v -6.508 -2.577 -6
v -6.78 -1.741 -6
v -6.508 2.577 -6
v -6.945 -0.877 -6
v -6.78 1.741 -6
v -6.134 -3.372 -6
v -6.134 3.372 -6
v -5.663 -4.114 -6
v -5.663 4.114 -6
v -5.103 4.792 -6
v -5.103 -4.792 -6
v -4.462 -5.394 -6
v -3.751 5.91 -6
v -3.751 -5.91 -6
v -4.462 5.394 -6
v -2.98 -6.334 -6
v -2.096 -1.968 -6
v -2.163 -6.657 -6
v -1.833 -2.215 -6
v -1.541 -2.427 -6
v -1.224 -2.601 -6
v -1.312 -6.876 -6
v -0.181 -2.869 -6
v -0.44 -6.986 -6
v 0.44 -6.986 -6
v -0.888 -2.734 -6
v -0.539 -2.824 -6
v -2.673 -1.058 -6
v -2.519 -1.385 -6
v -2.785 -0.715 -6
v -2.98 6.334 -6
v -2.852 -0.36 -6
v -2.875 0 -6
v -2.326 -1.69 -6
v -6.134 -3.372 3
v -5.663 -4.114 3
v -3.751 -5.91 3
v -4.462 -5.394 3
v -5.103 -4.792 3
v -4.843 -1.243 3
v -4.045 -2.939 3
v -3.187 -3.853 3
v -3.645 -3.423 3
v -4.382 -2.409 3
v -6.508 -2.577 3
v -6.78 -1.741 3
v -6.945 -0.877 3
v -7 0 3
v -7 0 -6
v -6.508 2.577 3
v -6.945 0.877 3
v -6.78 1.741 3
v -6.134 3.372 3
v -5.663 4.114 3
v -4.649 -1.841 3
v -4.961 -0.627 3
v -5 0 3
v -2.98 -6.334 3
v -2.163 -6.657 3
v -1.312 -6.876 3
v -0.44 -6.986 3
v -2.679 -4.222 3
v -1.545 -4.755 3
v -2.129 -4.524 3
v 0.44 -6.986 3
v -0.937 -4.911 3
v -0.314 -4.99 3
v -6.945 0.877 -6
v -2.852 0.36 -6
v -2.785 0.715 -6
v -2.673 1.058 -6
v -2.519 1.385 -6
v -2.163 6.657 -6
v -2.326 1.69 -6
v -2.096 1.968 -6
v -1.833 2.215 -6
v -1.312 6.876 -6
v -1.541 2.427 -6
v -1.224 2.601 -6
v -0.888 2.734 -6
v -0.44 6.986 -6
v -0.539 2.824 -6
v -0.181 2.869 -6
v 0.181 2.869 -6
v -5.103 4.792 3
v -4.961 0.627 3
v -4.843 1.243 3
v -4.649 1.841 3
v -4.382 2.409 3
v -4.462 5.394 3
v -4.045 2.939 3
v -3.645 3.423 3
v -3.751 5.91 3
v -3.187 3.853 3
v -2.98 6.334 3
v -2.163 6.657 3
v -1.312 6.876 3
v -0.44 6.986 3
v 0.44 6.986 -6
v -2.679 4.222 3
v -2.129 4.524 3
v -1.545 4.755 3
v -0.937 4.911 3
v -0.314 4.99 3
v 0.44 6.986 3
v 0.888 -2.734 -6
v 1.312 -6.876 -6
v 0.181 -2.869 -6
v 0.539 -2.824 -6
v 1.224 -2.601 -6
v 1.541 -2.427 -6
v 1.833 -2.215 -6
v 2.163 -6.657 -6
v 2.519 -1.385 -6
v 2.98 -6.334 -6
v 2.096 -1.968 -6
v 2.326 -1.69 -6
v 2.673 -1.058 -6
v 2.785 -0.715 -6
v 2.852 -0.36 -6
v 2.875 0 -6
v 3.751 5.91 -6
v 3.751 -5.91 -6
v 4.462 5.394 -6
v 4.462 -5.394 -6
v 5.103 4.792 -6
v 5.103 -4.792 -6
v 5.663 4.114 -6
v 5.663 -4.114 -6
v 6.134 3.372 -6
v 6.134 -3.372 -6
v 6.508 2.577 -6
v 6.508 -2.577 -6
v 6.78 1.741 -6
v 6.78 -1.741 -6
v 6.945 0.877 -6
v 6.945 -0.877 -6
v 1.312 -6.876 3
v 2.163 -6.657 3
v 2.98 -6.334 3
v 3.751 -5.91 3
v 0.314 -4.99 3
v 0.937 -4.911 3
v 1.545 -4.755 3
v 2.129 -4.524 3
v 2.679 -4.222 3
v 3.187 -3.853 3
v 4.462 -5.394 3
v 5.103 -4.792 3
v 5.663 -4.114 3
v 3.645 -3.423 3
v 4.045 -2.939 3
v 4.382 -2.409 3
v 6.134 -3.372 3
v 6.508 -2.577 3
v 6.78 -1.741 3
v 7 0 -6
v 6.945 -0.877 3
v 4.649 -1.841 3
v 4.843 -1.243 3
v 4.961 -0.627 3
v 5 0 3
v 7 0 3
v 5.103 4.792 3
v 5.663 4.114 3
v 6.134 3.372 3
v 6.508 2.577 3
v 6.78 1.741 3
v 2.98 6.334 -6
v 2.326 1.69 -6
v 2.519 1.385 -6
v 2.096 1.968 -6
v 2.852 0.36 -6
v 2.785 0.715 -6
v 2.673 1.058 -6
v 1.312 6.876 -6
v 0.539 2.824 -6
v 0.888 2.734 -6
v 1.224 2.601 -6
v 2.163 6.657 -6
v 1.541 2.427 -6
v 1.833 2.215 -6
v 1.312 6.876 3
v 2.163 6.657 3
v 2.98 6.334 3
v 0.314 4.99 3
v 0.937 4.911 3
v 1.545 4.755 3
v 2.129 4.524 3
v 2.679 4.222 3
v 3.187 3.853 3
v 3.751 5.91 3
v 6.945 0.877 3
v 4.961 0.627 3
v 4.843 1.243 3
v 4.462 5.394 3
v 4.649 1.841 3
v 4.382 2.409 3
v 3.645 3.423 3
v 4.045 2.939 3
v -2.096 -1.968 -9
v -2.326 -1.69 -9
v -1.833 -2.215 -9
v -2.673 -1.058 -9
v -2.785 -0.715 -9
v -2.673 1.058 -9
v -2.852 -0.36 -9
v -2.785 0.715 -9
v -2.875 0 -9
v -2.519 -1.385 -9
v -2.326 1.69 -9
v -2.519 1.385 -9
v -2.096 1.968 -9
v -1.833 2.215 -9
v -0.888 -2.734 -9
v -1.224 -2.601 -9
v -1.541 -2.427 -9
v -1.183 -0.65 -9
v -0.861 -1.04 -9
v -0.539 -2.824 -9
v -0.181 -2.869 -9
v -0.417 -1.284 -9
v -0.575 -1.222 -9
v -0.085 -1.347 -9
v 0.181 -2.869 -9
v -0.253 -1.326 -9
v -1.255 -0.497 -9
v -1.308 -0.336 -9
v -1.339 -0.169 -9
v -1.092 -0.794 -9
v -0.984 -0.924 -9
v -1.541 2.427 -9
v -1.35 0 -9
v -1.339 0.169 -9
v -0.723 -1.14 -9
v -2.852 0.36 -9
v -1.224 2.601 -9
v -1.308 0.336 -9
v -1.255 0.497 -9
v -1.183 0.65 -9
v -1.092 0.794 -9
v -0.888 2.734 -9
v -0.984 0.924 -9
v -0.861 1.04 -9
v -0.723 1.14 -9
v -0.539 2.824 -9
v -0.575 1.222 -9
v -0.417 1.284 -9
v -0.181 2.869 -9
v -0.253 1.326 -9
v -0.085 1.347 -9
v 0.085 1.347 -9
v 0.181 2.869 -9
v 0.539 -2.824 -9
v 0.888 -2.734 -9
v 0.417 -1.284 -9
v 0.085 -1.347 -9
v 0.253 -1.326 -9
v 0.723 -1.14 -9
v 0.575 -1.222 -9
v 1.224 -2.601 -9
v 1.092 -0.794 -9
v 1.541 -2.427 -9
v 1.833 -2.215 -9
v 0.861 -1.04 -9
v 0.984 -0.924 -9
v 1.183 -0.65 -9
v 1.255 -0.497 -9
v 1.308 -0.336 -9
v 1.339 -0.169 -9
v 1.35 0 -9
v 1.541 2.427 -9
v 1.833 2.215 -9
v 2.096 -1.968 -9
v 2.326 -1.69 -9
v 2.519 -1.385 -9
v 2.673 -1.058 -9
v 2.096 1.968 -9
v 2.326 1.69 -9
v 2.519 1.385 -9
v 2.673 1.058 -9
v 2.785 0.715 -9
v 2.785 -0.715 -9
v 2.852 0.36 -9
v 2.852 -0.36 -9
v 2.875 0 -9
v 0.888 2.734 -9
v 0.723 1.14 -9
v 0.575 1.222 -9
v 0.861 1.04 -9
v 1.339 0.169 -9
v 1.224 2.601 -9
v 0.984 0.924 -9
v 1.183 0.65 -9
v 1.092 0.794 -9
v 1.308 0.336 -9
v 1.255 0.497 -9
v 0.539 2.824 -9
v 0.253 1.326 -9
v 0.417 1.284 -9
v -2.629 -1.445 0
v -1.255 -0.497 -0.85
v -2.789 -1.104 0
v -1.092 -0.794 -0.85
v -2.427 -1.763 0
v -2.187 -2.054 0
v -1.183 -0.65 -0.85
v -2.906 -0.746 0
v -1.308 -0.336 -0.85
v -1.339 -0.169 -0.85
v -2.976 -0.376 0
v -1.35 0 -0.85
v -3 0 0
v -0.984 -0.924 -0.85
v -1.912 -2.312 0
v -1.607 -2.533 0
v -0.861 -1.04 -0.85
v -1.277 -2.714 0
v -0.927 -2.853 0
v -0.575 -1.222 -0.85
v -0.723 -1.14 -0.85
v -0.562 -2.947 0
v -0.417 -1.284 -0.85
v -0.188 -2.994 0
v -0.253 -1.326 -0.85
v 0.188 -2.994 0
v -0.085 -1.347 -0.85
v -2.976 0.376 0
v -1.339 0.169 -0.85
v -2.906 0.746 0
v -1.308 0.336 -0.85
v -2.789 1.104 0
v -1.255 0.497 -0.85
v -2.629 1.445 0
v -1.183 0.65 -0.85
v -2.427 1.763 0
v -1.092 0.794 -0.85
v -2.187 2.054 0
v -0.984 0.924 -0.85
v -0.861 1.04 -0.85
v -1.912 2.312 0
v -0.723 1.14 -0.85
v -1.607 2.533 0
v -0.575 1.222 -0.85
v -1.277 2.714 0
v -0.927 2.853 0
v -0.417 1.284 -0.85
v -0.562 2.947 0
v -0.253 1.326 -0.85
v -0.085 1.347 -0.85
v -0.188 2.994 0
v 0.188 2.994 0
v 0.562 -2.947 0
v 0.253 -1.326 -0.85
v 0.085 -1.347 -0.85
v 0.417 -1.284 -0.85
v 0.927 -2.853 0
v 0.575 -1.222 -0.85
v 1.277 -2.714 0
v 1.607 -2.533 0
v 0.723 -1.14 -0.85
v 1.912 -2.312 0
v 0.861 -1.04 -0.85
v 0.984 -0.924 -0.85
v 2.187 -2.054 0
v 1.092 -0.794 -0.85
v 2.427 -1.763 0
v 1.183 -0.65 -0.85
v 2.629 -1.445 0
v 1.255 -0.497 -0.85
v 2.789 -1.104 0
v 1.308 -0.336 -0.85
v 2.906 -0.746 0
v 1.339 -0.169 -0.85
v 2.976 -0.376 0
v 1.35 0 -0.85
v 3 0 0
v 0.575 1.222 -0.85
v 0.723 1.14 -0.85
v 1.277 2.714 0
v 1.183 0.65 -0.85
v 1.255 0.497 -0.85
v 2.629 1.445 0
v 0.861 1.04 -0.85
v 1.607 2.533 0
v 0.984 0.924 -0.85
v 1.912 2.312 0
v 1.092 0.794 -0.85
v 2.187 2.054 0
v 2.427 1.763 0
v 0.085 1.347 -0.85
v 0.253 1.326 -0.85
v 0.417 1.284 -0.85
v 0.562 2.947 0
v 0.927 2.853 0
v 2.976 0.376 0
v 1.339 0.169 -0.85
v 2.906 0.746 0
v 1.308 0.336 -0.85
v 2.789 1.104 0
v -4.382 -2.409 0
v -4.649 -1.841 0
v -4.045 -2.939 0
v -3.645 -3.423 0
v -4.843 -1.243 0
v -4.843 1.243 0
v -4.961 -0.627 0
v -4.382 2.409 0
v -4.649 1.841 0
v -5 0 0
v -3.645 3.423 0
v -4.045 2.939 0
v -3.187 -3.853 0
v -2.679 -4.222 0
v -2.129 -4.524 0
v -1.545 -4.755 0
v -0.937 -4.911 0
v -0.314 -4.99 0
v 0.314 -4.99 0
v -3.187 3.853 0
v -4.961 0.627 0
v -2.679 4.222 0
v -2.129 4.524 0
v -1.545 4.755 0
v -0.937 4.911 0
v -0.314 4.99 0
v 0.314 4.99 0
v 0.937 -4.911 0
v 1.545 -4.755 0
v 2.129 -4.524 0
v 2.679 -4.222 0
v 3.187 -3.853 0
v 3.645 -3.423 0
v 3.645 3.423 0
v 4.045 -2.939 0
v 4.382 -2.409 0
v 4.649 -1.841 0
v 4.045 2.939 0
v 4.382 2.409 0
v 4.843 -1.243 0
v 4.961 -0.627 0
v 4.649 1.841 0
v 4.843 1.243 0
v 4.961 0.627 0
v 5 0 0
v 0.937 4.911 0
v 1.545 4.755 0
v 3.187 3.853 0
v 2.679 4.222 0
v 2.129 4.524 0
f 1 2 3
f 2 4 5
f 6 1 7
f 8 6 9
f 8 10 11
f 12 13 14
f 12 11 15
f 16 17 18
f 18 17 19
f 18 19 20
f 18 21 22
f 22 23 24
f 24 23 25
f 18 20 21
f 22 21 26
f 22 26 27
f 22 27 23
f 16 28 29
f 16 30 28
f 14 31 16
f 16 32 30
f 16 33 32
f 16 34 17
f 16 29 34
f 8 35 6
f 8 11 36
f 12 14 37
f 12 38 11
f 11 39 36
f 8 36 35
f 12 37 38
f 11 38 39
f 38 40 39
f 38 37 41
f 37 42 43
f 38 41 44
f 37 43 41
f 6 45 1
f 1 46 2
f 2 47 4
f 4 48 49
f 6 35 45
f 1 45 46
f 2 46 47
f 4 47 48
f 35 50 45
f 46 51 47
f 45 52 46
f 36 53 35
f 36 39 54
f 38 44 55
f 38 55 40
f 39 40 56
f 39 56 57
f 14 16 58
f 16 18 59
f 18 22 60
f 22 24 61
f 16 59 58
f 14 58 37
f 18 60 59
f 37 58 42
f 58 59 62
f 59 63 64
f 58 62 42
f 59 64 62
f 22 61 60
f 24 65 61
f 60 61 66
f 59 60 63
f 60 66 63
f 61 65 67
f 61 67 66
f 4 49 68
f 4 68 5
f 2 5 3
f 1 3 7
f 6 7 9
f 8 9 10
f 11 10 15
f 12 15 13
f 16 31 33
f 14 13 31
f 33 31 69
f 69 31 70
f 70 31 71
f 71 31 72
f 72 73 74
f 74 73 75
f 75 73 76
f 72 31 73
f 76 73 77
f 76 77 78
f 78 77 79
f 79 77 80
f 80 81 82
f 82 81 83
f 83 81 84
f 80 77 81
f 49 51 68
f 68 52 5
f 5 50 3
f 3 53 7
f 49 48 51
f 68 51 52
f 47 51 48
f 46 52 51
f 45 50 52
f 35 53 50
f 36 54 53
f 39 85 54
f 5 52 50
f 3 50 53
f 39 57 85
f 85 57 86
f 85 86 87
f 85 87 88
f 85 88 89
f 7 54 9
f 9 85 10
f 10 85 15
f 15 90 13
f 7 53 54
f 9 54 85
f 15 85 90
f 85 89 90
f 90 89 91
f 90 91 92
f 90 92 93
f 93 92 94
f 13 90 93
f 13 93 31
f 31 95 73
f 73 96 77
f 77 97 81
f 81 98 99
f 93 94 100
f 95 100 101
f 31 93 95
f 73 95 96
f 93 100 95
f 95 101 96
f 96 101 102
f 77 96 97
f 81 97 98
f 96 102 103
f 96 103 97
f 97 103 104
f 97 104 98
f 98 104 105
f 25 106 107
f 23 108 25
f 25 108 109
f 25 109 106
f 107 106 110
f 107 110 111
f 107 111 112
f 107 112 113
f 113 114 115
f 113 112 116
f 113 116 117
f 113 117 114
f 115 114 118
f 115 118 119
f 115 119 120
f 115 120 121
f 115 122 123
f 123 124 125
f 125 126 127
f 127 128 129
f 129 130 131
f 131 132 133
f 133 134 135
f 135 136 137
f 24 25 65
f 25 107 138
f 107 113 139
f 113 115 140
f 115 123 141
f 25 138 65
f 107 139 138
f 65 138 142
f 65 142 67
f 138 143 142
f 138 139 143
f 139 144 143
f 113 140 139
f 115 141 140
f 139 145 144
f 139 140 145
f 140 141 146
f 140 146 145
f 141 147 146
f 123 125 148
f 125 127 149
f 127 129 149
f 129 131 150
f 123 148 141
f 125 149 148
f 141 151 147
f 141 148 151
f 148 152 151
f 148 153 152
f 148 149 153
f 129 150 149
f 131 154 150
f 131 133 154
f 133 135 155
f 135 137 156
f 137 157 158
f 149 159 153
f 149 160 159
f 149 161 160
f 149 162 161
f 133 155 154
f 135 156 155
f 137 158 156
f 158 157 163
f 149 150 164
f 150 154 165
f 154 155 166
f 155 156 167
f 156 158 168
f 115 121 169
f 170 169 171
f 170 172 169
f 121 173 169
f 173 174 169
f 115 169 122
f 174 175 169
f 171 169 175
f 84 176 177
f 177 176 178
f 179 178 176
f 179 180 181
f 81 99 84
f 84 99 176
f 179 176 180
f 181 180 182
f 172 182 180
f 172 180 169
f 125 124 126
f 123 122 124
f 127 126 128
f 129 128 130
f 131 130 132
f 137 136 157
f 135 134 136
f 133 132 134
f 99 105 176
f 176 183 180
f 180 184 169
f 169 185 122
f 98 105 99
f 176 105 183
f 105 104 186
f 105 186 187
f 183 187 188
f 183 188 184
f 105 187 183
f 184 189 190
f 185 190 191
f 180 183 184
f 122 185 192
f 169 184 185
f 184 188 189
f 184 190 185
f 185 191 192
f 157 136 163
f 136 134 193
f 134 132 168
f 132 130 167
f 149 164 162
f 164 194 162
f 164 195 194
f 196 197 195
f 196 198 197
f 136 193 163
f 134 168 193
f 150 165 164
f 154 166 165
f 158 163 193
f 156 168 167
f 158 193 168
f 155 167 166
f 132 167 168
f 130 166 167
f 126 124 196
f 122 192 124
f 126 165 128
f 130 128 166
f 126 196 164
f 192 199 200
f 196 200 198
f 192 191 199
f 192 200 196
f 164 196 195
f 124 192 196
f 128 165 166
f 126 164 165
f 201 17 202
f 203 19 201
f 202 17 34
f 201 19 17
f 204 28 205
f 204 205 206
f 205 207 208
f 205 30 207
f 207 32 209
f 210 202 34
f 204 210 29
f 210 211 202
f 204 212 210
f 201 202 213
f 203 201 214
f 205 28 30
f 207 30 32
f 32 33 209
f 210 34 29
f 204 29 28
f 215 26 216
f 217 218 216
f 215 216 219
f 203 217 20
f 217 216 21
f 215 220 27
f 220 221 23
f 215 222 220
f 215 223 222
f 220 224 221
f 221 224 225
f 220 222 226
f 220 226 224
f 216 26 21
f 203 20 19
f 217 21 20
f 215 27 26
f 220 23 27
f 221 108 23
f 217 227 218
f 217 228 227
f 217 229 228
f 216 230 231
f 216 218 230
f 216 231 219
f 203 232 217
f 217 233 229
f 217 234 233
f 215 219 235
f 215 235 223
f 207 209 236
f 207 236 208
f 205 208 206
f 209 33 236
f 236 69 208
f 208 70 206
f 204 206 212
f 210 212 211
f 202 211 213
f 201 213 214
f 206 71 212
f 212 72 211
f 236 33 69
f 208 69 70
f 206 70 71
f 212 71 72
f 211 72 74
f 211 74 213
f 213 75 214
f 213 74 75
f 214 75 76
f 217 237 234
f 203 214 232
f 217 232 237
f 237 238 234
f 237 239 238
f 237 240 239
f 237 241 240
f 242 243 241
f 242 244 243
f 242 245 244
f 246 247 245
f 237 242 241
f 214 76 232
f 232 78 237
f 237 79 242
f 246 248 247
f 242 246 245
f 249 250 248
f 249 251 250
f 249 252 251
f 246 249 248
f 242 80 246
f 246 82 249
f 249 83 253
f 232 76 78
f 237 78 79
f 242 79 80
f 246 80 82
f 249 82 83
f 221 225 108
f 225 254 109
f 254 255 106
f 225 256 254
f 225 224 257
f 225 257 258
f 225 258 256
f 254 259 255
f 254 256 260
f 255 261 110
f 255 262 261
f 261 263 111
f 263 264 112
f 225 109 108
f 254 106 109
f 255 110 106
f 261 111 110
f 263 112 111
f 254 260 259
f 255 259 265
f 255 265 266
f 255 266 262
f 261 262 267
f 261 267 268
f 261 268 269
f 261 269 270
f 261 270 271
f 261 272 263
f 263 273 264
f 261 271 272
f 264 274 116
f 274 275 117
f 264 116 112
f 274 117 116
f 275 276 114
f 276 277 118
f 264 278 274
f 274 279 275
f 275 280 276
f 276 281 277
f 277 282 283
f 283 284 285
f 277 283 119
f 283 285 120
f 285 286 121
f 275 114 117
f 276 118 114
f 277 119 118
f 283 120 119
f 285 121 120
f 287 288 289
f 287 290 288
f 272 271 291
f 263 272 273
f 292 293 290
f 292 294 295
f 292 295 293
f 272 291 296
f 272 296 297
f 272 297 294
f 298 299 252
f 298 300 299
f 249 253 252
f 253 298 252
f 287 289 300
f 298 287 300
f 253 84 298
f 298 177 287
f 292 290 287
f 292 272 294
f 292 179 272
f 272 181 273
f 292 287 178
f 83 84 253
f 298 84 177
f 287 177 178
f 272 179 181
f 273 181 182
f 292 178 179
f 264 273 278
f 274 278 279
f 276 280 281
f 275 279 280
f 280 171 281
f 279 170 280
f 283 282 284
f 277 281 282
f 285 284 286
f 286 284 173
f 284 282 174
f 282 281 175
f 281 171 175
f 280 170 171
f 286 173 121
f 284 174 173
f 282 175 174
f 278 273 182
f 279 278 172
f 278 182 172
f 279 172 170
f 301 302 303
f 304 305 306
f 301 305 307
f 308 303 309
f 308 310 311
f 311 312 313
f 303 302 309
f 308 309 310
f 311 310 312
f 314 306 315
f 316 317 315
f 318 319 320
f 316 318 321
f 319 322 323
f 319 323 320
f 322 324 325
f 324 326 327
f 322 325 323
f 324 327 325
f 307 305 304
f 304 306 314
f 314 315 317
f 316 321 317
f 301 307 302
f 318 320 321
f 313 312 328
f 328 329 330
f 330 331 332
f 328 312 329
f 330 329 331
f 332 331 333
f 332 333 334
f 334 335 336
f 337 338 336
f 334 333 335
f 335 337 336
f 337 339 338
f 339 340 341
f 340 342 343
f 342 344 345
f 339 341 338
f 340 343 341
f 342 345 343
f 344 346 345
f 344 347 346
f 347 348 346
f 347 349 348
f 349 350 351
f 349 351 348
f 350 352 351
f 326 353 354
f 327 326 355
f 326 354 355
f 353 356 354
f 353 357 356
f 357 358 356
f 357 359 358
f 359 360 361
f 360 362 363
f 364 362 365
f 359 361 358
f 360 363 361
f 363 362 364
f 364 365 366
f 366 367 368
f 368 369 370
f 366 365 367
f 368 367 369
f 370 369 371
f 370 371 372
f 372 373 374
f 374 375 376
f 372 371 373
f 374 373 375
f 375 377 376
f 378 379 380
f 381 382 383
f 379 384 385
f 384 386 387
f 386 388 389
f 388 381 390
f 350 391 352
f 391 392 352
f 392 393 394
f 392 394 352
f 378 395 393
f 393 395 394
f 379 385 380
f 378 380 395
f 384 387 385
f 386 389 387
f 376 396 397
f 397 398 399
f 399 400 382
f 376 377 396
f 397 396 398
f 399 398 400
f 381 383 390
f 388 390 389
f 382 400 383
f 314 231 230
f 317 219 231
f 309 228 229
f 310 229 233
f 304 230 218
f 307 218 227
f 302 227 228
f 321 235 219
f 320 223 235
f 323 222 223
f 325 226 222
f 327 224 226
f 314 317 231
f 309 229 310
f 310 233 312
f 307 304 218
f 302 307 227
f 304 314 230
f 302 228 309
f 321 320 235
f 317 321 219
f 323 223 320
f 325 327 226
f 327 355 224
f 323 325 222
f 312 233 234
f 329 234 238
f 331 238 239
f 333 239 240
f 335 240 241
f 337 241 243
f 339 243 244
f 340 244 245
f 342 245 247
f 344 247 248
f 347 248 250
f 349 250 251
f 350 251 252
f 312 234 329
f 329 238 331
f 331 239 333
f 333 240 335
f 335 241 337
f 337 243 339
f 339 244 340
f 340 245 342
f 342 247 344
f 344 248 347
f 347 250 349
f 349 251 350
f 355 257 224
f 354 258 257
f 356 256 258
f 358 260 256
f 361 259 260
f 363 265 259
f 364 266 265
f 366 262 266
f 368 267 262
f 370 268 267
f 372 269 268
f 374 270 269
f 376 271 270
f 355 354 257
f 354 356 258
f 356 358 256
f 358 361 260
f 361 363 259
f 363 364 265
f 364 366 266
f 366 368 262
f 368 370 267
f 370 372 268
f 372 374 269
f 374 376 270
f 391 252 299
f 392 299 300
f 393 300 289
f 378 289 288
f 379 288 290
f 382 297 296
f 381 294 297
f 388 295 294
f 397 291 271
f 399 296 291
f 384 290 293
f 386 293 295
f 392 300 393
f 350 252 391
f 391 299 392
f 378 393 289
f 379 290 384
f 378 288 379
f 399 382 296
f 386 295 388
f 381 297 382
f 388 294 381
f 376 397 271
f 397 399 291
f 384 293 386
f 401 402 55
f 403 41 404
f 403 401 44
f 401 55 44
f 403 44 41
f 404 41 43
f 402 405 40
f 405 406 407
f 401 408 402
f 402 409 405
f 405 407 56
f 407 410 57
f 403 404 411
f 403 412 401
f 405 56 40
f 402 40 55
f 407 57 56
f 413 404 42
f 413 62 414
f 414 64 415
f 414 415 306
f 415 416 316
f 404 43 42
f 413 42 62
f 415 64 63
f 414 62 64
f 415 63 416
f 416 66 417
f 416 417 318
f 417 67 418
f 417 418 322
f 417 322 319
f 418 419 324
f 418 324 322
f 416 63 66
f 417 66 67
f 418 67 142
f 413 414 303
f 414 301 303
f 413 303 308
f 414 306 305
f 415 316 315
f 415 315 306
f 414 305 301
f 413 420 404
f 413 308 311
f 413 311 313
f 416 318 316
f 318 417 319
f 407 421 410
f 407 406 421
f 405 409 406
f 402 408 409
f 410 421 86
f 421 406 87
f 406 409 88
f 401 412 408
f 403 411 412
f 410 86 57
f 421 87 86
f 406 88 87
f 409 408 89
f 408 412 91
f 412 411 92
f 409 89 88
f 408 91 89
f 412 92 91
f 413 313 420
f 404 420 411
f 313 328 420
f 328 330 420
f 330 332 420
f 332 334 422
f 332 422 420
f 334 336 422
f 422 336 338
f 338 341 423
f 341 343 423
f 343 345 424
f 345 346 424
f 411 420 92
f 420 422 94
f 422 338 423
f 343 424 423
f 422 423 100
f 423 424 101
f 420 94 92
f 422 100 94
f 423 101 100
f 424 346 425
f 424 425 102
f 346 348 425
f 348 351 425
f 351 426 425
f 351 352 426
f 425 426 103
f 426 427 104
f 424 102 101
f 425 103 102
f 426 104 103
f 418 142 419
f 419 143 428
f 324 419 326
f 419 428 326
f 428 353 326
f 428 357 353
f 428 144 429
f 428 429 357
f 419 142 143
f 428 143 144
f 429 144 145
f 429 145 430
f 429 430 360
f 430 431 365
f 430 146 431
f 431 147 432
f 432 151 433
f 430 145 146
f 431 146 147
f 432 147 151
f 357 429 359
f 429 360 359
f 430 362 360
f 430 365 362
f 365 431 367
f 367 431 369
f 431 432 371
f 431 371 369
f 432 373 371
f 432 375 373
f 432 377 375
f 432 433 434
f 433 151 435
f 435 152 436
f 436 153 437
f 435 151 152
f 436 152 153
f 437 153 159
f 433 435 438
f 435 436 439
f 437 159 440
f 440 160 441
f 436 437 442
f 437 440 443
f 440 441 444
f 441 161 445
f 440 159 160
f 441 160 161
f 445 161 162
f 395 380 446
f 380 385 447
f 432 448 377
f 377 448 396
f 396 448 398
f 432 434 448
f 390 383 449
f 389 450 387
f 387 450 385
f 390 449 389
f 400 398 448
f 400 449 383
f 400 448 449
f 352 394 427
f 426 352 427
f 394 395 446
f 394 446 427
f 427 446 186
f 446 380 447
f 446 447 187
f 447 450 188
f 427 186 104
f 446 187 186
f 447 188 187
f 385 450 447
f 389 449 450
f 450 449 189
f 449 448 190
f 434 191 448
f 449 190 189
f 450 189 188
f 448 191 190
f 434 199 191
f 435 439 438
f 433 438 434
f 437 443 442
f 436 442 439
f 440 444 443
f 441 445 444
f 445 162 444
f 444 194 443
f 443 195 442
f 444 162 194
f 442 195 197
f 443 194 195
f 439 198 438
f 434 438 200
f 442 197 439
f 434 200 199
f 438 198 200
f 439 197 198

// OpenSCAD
$fn = 50;

difference() {
	union() {
		translate(v = [0, 0, -6.0]) {
			cylinder(h = 9, r = 7.0);
		}
		#translate(v = [0, 0, -9.0]) {
			cylinder(h = 9, r = 2.875);
		}
	}
	union() {
		translate(v = [0, 0, 0]) {
			rotate(a = [0, 0, 0]) {
				difference() {
					union() {
						translate(v = [0, 0, -9.0]) {
							cylinder(h = 9, r = 1.0);
						}
						translate(v = [0, 0, -0.85]) {
							cylinder(h = 0.85, r1 = 1.35, r2 = 3.0);
						}
						translate(v = [0, 0, -9.0]) {
							cylinder(h = 9, r = 1.35);
						}
						translate(v = [0, 0, -9.0]) {
							cylinder(h = 9, r = 1.0);
						}
					}
					union();
				}
			}
		}
		#cylinder(h = 3, r = 5.0);
	}
}
